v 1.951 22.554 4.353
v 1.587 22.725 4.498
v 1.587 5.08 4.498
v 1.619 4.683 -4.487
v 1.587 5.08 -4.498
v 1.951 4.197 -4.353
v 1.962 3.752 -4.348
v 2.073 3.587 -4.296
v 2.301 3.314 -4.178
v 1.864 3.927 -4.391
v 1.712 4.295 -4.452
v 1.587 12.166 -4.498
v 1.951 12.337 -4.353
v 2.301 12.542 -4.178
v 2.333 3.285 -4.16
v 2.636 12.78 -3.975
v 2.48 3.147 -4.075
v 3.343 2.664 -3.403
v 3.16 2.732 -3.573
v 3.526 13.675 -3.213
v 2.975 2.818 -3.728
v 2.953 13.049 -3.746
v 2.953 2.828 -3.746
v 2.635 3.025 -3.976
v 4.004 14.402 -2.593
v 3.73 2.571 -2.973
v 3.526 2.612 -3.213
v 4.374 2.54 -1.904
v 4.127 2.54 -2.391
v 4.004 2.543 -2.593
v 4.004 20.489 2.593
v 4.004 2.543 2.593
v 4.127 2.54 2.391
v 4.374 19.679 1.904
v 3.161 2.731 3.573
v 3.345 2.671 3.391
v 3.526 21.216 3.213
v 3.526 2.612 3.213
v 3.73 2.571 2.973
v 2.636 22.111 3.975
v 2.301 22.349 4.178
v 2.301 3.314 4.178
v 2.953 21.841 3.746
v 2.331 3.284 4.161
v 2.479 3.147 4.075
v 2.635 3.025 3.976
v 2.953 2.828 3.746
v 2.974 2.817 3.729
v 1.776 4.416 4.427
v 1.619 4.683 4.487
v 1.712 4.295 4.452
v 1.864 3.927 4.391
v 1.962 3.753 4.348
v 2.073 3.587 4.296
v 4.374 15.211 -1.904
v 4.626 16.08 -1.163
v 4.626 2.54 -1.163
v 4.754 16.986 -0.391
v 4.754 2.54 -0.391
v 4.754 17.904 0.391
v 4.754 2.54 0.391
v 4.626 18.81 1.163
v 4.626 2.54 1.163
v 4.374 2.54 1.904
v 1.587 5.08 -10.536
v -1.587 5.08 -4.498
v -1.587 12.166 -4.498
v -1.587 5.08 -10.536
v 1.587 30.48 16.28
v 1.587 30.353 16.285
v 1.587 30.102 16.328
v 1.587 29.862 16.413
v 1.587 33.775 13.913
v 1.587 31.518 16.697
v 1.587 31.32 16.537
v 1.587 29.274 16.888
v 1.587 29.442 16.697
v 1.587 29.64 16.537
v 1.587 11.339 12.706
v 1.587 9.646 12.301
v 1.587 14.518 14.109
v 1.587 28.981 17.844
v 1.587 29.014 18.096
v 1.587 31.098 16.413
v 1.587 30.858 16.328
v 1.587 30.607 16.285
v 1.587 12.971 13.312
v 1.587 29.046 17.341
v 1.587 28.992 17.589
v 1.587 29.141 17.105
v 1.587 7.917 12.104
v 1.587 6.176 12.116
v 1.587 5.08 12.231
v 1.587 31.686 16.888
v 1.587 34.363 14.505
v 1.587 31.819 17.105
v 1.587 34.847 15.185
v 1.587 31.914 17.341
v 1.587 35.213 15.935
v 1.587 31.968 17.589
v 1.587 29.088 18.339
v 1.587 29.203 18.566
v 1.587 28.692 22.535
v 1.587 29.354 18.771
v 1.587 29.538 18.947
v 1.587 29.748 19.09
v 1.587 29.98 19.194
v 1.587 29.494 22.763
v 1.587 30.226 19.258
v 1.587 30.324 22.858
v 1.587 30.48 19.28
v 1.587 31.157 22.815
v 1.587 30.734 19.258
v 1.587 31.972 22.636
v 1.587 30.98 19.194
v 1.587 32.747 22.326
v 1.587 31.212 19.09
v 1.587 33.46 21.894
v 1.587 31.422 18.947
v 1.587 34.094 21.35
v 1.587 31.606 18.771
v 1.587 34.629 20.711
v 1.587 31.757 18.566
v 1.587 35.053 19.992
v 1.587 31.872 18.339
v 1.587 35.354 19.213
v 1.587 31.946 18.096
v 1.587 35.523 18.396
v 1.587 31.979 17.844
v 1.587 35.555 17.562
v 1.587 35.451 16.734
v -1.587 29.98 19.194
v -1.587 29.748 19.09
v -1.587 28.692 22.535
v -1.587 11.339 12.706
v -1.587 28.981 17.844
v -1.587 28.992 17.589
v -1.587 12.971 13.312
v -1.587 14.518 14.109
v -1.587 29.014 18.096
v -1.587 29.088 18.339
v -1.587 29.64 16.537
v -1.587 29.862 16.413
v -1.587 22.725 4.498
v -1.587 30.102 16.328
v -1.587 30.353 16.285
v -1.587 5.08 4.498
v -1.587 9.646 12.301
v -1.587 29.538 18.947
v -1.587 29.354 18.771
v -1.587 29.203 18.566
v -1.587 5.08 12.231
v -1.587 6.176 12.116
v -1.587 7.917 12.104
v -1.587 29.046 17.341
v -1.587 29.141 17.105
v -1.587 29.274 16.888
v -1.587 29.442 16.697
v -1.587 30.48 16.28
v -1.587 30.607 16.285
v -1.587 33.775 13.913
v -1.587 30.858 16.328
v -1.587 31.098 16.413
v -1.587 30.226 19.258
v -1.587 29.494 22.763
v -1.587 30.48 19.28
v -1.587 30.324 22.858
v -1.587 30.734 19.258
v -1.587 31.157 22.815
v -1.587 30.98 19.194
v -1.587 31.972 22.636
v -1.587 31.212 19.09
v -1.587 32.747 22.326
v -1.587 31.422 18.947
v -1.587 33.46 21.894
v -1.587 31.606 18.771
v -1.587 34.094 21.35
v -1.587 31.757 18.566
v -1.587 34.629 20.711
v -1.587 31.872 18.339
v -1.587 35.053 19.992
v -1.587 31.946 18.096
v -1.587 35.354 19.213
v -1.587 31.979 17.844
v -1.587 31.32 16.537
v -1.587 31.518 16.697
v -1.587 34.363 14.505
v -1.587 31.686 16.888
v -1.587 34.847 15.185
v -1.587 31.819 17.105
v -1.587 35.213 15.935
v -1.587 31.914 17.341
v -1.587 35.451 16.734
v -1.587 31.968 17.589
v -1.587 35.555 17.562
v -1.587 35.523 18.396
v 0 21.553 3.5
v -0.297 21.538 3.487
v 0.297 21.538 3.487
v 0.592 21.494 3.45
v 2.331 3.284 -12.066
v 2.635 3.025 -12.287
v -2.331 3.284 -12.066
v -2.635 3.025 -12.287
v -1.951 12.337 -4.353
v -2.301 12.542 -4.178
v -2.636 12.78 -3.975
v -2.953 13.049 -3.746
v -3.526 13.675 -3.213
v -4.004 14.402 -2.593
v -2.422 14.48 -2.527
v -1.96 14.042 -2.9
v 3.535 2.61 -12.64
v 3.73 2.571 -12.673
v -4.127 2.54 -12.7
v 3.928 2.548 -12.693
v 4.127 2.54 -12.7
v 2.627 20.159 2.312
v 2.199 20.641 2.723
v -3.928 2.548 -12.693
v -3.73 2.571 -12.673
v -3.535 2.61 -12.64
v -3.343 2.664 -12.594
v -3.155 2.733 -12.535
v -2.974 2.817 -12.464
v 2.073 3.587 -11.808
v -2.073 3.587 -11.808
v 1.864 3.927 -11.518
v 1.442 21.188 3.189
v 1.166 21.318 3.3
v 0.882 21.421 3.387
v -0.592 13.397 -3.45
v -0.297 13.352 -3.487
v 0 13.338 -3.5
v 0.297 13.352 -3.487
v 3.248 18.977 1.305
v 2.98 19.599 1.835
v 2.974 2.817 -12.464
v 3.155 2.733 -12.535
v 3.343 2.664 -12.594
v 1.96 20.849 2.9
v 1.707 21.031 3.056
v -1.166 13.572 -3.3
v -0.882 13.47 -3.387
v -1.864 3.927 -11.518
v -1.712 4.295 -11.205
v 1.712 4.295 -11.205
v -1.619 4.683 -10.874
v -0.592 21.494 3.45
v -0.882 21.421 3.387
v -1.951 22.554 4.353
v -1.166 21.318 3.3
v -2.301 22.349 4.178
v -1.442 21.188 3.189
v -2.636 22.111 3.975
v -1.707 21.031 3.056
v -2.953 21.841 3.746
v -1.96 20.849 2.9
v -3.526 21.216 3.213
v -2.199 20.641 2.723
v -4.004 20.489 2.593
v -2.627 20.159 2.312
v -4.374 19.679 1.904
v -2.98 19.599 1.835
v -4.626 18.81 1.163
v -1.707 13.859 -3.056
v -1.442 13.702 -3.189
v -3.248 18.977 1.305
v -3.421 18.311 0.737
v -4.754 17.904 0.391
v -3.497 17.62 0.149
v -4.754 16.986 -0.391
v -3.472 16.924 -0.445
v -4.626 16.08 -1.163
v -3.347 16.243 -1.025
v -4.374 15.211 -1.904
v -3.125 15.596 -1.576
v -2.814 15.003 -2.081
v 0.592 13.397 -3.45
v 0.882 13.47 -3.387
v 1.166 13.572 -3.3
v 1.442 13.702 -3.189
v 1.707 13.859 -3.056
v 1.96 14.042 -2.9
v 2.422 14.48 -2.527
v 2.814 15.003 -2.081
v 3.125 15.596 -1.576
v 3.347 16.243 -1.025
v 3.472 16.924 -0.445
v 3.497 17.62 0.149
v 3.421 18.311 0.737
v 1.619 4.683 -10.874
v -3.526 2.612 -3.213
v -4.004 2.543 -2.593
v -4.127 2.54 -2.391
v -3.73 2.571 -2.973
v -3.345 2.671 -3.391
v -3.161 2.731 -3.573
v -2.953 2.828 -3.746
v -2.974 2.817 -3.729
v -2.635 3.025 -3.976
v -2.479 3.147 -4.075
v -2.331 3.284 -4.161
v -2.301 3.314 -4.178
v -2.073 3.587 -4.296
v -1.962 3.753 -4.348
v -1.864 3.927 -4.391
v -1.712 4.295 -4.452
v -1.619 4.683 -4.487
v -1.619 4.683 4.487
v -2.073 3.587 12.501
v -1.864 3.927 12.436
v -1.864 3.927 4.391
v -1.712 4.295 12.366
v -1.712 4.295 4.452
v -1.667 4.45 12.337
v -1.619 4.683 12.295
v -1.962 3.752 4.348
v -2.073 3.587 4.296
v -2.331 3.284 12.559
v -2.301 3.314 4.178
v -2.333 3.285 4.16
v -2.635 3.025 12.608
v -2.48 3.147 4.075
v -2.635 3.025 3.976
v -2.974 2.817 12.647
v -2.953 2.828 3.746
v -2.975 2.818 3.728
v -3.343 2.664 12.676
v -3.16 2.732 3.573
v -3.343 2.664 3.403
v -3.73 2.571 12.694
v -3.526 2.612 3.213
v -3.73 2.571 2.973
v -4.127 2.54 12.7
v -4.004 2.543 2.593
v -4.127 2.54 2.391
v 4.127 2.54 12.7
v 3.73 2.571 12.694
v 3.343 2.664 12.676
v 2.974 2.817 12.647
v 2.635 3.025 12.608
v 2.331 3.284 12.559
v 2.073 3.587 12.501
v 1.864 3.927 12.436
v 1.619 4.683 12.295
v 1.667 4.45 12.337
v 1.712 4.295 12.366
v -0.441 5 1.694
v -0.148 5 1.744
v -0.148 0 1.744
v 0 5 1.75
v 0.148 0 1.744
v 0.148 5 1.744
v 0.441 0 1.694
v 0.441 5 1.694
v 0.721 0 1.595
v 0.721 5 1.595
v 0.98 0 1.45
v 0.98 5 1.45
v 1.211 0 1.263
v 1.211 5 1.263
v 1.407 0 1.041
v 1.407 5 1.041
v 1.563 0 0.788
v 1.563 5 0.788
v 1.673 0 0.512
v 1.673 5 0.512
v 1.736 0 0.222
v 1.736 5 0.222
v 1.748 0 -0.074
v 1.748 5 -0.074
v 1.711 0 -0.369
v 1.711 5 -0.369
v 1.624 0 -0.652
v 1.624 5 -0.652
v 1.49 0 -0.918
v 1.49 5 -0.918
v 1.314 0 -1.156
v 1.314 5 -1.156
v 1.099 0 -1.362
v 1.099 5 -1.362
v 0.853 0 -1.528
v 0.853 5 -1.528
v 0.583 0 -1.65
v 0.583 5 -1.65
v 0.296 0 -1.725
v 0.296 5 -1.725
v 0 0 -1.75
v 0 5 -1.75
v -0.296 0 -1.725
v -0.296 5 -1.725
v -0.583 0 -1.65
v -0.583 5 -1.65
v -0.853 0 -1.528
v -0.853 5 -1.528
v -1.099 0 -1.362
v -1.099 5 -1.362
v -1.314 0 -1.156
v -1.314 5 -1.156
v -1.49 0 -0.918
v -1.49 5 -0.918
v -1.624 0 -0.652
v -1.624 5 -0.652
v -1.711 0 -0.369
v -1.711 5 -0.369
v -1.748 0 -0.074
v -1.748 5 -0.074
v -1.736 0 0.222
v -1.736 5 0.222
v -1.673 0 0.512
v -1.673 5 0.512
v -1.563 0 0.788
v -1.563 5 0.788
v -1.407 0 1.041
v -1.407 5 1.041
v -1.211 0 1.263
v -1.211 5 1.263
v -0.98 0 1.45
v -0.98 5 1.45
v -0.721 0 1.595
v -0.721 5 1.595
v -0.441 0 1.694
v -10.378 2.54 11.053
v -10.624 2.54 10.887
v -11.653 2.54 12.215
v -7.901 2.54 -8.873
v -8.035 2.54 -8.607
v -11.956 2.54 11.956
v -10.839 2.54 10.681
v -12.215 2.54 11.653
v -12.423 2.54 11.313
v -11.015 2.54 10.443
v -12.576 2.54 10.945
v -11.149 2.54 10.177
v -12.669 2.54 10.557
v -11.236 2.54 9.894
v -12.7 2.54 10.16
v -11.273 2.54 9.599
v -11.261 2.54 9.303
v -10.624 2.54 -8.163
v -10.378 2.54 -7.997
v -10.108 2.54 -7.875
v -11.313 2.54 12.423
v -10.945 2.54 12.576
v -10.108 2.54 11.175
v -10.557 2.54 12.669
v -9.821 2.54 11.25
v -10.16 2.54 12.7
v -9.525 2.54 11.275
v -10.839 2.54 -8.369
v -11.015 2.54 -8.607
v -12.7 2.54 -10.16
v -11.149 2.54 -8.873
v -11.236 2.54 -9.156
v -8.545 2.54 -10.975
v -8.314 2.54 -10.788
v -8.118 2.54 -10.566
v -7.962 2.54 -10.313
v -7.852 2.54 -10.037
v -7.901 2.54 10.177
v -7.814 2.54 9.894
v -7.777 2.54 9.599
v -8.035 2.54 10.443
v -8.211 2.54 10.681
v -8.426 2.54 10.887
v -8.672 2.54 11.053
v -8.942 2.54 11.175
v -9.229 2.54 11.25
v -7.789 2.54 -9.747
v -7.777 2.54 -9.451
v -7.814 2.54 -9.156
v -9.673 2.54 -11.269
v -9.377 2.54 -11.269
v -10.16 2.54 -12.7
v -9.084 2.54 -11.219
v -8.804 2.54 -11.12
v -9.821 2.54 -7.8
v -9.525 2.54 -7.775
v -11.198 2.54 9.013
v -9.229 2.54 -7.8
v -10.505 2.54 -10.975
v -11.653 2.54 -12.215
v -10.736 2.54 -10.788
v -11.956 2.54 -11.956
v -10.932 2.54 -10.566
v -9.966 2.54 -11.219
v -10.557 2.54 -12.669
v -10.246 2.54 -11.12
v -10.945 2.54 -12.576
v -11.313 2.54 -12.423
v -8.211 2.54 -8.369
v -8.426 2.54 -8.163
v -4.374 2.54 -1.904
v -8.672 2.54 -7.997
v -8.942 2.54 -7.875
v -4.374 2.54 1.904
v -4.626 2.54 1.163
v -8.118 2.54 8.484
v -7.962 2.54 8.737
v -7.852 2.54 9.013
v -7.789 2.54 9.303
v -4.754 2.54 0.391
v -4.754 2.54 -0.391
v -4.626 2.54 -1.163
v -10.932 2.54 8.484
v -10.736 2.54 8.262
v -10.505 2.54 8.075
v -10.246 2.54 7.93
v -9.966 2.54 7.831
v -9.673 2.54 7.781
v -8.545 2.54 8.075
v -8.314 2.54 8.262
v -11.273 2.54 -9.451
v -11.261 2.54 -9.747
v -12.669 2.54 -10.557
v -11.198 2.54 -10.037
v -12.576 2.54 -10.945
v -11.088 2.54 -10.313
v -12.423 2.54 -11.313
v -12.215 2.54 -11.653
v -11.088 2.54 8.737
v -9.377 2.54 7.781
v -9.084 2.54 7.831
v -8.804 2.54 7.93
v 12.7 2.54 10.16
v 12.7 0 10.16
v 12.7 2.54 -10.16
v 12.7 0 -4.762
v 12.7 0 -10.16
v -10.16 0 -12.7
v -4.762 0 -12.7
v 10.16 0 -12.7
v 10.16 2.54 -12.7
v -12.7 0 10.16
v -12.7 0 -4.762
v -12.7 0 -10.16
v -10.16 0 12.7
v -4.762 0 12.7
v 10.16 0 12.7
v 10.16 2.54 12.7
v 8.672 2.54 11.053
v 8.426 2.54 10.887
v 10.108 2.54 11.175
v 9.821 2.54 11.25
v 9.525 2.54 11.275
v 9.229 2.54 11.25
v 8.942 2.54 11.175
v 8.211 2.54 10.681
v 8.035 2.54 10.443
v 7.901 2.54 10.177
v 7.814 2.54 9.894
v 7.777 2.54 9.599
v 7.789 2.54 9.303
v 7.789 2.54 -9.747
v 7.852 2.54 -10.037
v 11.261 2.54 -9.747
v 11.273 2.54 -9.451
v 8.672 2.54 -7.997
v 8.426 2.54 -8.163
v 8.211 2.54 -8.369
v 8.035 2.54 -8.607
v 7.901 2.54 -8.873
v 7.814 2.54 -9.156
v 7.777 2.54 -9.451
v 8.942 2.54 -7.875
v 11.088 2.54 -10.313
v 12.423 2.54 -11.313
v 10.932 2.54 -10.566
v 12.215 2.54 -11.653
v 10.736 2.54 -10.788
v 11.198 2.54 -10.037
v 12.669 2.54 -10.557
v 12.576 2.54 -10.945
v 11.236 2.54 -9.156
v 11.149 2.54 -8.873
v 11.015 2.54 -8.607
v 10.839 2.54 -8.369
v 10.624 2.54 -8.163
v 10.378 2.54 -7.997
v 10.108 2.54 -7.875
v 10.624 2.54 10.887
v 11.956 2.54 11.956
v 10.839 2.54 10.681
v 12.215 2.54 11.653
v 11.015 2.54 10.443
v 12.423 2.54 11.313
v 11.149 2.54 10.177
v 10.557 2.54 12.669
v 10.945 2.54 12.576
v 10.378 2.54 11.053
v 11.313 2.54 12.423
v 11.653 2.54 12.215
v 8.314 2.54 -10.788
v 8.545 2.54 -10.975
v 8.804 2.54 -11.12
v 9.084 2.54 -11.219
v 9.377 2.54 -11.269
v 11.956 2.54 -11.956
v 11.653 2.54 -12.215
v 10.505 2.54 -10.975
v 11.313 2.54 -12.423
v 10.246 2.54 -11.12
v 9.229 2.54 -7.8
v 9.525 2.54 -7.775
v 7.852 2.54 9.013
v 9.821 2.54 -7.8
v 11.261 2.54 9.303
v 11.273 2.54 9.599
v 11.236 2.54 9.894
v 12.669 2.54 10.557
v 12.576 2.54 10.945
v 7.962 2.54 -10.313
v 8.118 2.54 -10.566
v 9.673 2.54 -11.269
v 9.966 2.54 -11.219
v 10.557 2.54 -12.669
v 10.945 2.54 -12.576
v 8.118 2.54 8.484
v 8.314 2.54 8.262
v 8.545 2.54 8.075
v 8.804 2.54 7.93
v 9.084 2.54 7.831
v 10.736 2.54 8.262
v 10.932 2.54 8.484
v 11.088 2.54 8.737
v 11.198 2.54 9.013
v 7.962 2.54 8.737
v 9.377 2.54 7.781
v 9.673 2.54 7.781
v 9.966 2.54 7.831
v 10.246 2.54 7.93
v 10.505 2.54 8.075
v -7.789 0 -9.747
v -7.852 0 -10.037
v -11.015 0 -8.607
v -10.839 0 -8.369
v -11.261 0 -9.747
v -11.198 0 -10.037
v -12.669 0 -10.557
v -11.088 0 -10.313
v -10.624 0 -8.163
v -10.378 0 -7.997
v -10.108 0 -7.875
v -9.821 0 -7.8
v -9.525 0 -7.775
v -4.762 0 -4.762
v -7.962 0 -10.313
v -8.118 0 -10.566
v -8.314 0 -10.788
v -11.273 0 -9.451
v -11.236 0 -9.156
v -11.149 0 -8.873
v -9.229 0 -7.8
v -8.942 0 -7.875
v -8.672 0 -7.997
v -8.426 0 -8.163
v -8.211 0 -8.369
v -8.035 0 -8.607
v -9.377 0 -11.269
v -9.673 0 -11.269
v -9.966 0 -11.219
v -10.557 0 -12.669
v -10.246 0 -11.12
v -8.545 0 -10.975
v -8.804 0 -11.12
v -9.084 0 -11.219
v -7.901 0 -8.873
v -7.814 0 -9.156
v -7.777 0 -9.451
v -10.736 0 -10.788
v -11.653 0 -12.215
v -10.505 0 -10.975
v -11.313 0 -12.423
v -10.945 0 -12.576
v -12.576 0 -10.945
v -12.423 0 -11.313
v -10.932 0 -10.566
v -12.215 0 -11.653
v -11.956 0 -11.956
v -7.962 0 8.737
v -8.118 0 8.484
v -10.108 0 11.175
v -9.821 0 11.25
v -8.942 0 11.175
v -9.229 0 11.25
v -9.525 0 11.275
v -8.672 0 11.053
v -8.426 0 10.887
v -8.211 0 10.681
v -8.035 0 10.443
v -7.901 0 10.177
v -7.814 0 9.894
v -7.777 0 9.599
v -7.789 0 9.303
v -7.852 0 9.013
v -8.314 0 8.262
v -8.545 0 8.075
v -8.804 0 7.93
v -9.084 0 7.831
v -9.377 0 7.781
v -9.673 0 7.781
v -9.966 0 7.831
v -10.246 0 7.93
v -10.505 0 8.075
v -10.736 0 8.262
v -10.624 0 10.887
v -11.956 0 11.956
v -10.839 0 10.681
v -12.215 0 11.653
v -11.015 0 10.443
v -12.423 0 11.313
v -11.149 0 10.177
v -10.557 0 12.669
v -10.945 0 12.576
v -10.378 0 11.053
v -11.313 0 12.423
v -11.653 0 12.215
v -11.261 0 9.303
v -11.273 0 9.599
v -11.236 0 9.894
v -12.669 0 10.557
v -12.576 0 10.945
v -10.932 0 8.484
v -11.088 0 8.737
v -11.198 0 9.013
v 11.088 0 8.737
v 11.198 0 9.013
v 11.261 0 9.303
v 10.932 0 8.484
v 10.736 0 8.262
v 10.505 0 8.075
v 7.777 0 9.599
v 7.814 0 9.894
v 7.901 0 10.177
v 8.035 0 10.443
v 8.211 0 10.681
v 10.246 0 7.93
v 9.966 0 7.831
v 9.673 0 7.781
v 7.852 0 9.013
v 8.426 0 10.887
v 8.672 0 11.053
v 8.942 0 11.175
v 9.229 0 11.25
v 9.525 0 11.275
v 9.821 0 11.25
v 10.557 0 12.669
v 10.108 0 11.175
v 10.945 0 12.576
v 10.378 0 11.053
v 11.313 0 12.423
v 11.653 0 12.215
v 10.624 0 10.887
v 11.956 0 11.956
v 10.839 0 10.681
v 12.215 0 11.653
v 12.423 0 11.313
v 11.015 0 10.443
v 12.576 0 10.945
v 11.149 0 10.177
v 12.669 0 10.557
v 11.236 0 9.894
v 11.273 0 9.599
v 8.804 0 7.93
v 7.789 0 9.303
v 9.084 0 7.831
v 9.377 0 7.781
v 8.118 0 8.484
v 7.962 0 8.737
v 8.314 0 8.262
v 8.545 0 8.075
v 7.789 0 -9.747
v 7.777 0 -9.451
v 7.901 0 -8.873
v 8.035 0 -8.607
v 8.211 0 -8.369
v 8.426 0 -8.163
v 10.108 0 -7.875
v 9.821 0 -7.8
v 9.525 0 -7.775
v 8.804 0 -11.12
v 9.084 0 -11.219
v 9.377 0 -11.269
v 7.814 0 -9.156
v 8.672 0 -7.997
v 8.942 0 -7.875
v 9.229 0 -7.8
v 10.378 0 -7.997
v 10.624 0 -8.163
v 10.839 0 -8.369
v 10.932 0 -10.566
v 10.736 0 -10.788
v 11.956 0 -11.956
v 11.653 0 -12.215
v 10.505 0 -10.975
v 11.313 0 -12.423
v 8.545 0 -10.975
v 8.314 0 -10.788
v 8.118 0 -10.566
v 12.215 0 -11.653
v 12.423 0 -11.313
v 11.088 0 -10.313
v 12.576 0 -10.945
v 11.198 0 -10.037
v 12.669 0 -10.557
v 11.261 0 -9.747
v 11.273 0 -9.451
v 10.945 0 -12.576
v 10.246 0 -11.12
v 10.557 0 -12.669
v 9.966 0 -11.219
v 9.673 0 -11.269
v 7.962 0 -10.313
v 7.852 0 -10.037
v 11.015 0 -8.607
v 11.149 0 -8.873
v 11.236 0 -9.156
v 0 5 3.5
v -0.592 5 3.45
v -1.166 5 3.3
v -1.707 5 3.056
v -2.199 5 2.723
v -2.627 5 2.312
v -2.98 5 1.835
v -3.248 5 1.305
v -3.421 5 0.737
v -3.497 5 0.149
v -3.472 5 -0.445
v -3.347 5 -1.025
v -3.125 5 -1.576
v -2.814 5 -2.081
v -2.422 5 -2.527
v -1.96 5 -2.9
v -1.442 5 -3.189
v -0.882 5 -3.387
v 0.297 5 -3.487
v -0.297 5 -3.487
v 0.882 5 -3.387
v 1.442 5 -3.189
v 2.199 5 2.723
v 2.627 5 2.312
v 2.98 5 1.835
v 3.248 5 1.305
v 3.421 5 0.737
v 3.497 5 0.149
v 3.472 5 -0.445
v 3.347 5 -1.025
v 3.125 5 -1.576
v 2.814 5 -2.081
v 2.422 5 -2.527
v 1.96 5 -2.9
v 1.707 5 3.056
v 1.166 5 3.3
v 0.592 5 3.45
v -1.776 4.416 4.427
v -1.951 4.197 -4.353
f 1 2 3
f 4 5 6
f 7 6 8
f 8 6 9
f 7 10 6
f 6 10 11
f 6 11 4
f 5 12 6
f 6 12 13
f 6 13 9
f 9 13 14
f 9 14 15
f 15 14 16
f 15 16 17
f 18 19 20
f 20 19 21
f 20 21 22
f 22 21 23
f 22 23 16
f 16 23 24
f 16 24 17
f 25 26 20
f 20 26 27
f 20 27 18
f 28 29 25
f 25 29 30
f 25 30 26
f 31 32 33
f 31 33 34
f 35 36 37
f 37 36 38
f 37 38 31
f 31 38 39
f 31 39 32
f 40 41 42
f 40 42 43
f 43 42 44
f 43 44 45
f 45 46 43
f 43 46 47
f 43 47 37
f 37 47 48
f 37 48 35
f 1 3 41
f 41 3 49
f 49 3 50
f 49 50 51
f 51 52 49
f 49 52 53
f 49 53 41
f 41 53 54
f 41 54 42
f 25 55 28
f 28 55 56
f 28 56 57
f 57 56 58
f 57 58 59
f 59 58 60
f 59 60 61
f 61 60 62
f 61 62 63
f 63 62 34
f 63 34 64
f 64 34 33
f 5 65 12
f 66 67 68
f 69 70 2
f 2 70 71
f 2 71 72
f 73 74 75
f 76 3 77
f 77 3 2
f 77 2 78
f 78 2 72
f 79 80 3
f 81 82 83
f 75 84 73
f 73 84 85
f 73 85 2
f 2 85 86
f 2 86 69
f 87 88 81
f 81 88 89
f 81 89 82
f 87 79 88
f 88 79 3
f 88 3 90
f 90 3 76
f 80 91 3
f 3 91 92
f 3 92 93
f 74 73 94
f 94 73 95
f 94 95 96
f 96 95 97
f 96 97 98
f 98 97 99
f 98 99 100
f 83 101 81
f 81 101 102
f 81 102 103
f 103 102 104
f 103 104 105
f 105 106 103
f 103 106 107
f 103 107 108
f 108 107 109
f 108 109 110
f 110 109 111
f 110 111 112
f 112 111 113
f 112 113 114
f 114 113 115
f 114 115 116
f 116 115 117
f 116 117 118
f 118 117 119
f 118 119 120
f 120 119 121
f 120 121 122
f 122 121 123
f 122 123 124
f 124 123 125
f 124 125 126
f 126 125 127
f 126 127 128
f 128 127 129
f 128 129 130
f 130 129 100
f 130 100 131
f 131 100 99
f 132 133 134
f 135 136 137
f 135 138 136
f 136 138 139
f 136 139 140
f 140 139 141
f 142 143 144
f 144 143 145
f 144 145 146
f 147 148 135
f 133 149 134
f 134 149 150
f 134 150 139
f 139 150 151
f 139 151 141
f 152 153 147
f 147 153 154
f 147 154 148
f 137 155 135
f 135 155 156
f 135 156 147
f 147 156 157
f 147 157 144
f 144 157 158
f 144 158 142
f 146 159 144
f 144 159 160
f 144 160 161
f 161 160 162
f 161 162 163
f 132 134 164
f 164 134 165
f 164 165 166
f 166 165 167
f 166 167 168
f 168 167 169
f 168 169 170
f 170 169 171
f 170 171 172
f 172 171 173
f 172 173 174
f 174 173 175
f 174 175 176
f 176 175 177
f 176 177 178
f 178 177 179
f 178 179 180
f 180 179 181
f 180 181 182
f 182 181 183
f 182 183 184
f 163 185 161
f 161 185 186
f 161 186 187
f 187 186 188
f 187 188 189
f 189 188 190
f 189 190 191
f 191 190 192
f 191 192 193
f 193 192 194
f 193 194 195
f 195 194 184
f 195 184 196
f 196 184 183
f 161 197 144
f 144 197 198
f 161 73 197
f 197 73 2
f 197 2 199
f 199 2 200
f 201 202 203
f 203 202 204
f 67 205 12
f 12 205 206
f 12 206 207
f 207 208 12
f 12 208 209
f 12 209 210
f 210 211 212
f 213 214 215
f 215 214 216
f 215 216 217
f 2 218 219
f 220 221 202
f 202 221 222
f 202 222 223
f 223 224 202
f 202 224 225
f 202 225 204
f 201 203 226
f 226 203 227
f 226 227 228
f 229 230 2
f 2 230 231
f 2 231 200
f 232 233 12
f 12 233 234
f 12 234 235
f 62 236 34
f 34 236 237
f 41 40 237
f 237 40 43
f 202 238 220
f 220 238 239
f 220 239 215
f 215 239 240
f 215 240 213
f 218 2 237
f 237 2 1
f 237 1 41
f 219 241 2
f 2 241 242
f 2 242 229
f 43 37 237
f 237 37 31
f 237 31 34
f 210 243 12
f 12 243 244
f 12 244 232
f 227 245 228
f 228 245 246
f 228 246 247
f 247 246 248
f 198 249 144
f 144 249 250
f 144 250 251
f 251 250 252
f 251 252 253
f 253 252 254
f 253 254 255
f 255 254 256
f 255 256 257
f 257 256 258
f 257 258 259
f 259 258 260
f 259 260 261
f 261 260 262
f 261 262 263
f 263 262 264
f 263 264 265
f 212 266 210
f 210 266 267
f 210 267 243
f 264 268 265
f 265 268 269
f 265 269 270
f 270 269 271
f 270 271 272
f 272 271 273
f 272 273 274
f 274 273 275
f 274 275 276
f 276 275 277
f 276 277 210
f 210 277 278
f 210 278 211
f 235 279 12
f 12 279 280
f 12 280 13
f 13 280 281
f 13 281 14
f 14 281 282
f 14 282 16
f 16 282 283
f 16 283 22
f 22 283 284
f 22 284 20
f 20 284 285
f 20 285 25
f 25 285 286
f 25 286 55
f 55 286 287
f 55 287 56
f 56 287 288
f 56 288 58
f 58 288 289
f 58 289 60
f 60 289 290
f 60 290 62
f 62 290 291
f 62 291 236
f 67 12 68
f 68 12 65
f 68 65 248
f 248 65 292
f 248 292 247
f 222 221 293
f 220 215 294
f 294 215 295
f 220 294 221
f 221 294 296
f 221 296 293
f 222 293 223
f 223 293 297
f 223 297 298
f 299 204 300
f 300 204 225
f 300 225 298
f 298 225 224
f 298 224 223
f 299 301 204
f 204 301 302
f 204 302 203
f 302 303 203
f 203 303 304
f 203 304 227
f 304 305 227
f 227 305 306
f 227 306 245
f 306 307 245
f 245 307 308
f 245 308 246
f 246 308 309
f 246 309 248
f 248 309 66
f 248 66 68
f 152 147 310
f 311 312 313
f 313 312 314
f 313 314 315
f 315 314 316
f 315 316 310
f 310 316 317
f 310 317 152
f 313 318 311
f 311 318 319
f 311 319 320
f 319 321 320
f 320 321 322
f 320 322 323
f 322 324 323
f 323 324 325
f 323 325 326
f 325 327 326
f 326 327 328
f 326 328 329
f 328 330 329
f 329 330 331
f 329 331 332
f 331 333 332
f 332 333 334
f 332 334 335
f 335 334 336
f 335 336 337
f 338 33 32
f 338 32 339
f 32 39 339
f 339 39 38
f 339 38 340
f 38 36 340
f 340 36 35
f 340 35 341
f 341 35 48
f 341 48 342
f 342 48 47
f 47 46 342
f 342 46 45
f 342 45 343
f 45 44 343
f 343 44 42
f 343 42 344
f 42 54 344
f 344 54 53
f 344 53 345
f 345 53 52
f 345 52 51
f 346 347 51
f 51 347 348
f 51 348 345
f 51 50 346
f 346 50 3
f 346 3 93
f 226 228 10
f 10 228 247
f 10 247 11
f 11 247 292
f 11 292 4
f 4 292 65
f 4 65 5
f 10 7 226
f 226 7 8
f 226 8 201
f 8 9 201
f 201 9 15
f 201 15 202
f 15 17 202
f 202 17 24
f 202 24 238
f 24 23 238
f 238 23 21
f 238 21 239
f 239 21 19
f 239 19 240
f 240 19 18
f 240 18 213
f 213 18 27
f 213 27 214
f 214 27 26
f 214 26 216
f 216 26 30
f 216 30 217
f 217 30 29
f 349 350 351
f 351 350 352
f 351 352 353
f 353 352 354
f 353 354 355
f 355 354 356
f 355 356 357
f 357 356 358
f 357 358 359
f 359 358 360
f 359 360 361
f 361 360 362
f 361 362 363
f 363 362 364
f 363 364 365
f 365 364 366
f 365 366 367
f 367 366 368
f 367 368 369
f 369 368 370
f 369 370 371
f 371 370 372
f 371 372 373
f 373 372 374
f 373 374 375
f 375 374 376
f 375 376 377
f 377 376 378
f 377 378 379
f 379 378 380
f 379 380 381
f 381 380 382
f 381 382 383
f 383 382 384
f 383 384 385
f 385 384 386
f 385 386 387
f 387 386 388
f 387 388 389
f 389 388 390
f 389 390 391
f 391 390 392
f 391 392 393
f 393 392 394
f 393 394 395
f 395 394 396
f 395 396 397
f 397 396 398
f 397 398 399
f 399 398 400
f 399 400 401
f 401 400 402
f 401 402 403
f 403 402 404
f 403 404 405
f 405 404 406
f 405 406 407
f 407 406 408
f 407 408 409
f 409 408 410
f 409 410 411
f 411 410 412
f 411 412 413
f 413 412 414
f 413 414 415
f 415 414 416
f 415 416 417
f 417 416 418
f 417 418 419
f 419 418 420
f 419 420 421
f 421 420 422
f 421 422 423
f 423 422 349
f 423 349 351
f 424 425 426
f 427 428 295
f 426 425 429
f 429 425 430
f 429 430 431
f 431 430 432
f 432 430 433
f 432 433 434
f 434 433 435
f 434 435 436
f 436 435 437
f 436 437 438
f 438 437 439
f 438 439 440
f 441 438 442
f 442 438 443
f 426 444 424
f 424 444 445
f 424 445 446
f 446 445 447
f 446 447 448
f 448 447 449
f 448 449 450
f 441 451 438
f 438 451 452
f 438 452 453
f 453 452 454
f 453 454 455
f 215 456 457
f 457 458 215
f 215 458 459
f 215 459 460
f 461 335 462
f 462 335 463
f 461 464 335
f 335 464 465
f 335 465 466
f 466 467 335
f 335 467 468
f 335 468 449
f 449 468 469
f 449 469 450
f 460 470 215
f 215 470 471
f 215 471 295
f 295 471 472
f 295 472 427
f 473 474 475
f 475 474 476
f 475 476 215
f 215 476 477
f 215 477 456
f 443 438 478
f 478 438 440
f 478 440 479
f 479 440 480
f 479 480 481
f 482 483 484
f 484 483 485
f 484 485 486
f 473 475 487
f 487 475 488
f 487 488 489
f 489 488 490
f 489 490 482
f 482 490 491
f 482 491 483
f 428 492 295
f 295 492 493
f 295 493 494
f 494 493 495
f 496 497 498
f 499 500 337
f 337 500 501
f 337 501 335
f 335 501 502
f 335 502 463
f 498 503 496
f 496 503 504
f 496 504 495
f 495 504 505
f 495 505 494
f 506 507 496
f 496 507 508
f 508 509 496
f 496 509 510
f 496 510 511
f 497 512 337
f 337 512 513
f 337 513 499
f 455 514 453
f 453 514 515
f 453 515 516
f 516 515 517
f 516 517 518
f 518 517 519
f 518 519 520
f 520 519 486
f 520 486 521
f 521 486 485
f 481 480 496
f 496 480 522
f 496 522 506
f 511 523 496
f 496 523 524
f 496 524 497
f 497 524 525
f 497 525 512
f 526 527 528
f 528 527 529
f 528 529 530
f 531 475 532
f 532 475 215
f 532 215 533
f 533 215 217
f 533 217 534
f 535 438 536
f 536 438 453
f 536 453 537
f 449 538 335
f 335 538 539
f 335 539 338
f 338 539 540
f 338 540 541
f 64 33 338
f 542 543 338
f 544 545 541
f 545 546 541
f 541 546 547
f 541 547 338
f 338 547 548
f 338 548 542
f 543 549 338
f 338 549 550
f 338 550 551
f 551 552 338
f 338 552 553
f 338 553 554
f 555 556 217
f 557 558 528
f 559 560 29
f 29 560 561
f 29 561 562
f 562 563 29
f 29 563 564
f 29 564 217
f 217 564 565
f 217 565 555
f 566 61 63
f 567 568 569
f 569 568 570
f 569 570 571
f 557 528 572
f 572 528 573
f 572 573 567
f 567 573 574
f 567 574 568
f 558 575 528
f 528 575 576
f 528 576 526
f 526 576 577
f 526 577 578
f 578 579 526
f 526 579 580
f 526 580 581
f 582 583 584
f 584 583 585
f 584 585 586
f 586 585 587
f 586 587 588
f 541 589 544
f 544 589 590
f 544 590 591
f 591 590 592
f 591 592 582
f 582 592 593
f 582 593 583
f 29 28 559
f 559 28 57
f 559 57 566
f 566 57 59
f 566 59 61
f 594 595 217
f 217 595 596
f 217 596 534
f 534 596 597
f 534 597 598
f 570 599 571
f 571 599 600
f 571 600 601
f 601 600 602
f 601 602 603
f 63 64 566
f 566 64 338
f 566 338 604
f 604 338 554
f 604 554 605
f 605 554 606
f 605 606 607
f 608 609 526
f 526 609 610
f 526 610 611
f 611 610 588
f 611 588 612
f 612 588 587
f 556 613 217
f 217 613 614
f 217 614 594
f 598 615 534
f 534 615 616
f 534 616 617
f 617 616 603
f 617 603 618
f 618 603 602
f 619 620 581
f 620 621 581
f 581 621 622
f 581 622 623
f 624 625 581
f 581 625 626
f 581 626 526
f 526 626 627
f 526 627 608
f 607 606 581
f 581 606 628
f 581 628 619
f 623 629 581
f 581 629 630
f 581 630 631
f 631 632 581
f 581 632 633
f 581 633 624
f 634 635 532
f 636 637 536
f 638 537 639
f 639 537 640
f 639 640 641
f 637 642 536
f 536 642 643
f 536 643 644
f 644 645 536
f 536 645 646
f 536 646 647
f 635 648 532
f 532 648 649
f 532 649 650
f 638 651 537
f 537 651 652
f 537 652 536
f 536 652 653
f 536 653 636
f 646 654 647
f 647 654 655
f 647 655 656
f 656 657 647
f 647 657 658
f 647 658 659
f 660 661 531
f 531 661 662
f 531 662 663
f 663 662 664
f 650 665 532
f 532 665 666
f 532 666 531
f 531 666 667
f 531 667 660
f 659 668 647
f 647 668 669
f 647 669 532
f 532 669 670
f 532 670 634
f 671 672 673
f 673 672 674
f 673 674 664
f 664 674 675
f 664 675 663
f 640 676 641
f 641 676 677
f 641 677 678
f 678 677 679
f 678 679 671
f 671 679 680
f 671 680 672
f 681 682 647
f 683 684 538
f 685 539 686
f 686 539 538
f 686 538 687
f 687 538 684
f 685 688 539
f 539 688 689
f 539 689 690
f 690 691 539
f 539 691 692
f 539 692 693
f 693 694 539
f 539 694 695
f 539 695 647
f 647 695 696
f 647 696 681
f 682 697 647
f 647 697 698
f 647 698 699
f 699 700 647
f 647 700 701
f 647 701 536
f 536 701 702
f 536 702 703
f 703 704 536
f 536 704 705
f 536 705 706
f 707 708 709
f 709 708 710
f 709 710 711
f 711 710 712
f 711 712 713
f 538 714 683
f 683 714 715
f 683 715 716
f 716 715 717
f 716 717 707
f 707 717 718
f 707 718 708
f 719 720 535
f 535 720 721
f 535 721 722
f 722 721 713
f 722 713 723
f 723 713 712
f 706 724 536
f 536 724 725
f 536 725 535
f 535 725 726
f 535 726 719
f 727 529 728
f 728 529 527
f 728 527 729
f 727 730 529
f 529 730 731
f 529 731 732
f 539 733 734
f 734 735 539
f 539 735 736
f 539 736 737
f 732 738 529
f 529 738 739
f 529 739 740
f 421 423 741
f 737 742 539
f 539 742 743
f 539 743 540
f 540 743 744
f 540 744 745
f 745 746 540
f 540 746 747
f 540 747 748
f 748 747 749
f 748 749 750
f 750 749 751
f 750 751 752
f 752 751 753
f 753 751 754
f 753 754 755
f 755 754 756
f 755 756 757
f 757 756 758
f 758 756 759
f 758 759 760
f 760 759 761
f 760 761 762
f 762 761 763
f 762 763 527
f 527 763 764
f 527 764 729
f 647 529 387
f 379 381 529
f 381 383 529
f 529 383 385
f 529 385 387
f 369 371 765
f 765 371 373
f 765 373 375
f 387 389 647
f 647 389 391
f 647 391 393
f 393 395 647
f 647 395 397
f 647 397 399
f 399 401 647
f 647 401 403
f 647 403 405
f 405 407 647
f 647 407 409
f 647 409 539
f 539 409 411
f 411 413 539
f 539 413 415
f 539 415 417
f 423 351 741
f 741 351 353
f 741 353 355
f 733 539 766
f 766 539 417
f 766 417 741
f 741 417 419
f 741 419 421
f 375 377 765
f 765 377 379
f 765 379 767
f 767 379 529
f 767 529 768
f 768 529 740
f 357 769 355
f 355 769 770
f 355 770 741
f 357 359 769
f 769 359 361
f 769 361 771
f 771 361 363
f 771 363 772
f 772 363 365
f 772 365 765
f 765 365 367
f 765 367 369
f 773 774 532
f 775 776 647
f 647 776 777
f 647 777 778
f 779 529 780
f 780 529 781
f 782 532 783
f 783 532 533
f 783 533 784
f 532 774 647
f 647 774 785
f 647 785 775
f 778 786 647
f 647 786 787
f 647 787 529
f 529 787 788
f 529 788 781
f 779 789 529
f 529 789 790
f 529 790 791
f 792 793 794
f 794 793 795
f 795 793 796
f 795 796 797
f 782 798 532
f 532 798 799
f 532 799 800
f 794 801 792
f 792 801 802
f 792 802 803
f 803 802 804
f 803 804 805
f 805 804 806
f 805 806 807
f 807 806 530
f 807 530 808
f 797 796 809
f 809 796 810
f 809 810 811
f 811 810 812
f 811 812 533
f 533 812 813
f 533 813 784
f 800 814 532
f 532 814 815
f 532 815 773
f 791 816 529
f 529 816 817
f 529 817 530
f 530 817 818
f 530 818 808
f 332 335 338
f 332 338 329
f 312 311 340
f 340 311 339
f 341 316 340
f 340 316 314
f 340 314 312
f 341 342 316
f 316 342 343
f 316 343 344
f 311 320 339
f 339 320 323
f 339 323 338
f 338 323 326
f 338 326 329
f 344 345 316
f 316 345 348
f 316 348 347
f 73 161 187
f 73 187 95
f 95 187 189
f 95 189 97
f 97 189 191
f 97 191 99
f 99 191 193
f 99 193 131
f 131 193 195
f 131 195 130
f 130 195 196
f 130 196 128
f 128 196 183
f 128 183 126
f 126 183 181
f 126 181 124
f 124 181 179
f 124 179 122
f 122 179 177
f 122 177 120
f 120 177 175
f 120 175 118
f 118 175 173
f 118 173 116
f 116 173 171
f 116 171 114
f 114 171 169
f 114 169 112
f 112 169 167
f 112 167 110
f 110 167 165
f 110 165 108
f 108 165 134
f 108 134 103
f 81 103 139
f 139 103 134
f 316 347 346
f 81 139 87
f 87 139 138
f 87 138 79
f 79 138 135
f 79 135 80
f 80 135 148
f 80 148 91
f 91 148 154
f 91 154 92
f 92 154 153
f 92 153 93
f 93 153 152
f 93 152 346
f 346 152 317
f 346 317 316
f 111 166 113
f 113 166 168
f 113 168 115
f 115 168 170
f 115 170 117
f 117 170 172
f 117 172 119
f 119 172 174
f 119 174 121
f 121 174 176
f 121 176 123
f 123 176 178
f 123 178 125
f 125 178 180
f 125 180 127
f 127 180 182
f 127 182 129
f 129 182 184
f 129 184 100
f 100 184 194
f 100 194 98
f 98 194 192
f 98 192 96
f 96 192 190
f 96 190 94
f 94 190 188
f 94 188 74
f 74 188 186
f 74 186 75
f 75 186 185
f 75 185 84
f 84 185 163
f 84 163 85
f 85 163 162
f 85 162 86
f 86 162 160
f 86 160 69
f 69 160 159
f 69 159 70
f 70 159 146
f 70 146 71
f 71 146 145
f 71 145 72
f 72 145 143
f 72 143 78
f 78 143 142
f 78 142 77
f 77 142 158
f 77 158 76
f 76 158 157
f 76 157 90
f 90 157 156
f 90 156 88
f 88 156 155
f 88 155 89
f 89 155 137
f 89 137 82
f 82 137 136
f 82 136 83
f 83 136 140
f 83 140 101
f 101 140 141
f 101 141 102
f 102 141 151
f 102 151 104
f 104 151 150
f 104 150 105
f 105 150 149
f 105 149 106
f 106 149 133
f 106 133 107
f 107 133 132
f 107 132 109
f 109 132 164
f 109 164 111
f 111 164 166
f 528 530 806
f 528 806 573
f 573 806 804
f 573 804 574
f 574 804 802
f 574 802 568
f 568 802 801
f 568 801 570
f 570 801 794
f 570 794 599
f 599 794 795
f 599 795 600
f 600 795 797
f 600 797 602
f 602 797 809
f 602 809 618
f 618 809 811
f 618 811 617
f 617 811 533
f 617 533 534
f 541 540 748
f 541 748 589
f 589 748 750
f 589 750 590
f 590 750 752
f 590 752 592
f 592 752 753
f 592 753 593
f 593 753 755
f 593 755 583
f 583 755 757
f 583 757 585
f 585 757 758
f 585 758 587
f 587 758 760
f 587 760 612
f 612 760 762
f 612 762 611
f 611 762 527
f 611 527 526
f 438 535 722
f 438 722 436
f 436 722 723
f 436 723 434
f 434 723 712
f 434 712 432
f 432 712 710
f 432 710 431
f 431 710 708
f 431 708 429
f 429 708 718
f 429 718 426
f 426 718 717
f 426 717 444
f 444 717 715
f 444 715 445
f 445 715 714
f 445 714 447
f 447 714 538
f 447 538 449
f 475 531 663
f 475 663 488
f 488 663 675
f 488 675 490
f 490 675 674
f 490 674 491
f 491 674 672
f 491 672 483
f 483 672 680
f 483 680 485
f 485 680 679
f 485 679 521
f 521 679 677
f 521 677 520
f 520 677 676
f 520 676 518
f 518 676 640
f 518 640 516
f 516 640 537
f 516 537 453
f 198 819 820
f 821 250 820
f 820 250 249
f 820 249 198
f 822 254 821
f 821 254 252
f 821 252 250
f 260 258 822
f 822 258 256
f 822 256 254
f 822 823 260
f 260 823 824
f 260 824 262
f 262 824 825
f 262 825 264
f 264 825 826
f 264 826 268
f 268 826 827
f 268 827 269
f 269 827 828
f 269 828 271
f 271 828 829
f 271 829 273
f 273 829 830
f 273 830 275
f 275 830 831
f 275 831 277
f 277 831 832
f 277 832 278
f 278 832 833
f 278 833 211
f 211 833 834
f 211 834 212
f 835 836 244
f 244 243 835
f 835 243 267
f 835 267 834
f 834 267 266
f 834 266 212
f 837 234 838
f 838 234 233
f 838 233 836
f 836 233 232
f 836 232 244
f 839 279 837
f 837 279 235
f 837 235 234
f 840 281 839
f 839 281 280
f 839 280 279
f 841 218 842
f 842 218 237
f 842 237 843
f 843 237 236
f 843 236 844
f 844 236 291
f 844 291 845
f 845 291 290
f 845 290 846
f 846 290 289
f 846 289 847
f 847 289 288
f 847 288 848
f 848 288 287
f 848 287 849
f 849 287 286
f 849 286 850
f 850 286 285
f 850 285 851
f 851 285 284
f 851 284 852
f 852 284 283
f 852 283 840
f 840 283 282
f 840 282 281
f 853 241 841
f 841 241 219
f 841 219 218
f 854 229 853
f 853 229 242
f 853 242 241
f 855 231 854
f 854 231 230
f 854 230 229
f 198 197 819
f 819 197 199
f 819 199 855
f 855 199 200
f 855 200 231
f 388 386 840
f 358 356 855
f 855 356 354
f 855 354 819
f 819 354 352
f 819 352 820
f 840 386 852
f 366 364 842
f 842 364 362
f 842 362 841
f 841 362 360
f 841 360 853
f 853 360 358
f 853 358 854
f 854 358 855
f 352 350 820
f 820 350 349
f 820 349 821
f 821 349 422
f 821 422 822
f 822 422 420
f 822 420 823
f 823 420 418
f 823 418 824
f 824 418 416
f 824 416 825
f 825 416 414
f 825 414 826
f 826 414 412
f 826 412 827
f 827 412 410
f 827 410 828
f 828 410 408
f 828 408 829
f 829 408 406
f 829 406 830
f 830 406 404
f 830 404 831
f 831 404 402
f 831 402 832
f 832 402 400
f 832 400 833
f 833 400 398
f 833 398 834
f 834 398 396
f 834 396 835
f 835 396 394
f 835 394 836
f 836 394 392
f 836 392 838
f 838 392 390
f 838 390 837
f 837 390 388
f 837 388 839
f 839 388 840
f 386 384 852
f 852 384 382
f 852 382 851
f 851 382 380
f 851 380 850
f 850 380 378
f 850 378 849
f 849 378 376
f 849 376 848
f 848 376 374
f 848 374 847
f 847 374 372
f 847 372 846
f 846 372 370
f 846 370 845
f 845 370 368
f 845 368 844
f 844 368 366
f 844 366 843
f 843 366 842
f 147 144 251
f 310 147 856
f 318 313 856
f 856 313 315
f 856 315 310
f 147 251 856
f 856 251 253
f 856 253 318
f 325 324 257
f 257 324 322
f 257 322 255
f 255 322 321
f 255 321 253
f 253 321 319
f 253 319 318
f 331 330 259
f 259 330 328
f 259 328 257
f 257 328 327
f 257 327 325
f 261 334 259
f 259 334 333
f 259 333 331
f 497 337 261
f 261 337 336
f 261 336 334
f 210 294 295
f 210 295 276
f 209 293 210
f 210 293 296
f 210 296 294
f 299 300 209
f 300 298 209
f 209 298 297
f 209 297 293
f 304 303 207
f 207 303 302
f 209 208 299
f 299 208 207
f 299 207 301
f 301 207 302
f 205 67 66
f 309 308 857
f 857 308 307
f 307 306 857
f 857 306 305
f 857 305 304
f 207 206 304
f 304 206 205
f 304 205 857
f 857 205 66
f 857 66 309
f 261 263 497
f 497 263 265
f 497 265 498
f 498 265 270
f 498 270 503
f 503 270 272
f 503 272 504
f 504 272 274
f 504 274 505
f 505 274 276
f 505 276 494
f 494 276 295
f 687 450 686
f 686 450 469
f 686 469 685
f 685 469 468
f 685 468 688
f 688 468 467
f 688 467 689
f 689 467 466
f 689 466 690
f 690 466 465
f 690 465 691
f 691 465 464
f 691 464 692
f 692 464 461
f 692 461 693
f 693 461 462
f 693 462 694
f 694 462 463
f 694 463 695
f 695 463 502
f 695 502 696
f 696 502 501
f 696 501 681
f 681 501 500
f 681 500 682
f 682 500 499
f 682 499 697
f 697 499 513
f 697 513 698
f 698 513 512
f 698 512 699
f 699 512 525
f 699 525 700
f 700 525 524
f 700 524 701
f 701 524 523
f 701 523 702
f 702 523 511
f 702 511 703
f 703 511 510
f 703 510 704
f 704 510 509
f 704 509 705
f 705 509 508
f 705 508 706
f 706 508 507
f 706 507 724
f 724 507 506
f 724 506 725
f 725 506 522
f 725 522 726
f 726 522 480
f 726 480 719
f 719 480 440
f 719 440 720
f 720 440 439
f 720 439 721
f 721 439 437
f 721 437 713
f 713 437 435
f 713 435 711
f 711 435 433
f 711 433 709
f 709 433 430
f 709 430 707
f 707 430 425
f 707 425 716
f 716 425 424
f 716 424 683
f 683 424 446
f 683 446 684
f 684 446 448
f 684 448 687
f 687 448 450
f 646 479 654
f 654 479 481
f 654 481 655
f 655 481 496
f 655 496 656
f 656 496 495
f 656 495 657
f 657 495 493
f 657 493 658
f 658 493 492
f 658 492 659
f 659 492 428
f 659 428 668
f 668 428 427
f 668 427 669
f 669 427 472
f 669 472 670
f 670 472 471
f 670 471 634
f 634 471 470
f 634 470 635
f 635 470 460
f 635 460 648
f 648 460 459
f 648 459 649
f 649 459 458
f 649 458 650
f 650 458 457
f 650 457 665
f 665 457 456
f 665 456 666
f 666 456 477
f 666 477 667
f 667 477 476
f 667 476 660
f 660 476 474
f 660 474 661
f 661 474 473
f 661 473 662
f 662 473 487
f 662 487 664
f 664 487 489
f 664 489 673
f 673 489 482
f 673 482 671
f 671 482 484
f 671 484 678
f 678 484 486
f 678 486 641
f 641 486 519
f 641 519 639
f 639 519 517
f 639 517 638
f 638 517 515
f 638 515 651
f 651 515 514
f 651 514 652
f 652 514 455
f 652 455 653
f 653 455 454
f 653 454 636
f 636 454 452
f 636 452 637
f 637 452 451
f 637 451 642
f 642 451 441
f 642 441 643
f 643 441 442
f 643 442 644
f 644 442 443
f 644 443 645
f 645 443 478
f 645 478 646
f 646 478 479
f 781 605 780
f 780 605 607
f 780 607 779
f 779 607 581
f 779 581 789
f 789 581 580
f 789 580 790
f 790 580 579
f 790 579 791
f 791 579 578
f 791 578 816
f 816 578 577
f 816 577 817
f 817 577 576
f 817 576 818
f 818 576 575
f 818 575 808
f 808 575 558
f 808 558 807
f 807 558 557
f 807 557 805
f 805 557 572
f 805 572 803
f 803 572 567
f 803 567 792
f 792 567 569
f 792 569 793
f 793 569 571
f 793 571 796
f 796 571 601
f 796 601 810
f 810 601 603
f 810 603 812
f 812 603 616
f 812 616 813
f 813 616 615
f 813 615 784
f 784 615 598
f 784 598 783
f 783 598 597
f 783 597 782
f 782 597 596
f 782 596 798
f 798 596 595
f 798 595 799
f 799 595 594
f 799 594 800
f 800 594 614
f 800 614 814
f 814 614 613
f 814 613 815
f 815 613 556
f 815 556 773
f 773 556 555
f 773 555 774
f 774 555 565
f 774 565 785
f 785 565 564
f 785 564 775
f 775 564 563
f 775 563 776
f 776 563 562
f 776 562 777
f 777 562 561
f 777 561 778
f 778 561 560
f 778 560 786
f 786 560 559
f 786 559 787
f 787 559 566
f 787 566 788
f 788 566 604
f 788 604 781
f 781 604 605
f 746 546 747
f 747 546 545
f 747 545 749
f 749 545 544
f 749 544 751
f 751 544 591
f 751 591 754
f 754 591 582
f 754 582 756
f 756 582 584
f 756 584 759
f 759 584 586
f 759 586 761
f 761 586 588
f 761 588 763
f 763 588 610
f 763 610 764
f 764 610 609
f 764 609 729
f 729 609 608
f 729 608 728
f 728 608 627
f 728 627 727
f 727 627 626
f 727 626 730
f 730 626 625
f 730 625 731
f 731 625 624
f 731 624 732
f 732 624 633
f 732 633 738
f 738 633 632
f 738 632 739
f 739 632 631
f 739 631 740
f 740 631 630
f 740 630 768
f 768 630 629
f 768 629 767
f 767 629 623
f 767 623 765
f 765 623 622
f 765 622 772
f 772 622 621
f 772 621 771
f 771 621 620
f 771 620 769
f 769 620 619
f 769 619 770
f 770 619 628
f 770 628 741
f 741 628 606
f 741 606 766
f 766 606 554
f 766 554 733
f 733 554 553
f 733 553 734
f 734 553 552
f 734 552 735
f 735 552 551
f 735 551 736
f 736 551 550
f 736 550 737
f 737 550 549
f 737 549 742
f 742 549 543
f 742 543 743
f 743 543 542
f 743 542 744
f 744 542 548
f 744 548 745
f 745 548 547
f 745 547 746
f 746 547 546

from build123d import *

# Parameters (mm, degrees)
BOSS_EXTRUDE1_DEPTH     = 2.54
SKETCH3_R               = 1.5000000000000009
BOSS_EXTRUDE2_DEPTH     = 1.5875
FILLET1_START           = -12.7000001
FILLET1_DEPTH           = 25.4000001
FILLET1_START_2         = -5
FILLET1_2_DEPTH         = 10
FILLET2_R               = 2.54
SKETCH4_R               = 3.5
BOSS_EXTRUDE3_DEPTH     = 7
SKETCH5_R               = 1.75
CUT_EXTRUDE1_DEPTH      = 45.14049388033623
CUT_EXTRUDE2_DEPTH      = 39.723935750385714
CUT_EXTRUDE2_DEPTH_BACK = 2
SKETCH6_R               = 3.5
SKETCH10_R              = 4.77
SKETCH10_R_2            = 3.5
BOSS_EXTRUDE4_DEPTH     = 21.844000000000005
SKETCH9_R               = 1.7499999999999998
CUT_EXTRUDE4_DEPTH      = 43.12113483751359
CUT_EXTRUDE5_DEPTH      = 45.62315381335121
CUT_EXTRUDE5_DEPTH_BACK = 45.62315381335121


with BuildPart() as part:
    # Sketch1 → Boss-Extrude1 (new body)
    with BuildSketch(Plane(origin=(0, 0, 0), x_dir=(1, 0, 0), z_dir=(0, 1, 0))):
        Polygon((-12.7, 12.699999999999998), (12.7, 12.699999999999998), (12.700000000000003, -12.700000000000001), (-12.699999999999996, -12.700000000000001), align=None)
    extrude(amount=BOSS_EXTRUDE1_DEPTH)

    # Sketch3 → Boss-Extrude2 (add, symmetric)
    with BuildSketch(Plane(origin=(0, 0, 0), x_dir=(0, 0, -1), z_dir=(1, 0, 0))):
        with BuildLine():
            Line((-22.53488, 28.691839999999996), (-14.109077453558108, 14.51812311143032))
            ThreePointArc((-14.109077453558108, 14.51812311143032), (-12.3014463794853, 9.646212675108597), (-12.336895325054973, 4.449888515498061))
            Line((-12.336895325054973, 4.449888515498061), (-12.700000000000001, 2.54))
            Line((-12.700000000000001, 2.54), (12.699999999999998, 2.54))
            Line((12.699999999999998, 2.54), (-13.91324894993197, 33.77463750916512))
            ThreePointArc((-13.91324894993197, 33.77463750916512), (-20.3599032710008, 34.856128324475804), (-22.53488, 28.691839999999996))
        make_face()
        with Locations((-17.779999999999998, 30.479999999999997)):
            Circle(SKETCH3_R, mode=Mode.SUBTRACT)
    extrude(amount=BOSS_EXTRUDE2_DEPTH, both=True)

    # Fillet1: read off the stored shape, not the designer's step
    # Fillet1 outline → Fillet1 (add)
    with BuildSketch(Plane.XY.offset(FILLET1_START)):
        with BuildLine():
            ThreePointArc((-1.5875, 5.08), (-2.331448776, 3.283948776), (-4.1275, 2.54))
            Line((-4.1275, 2.54), (-1.5875, 2.54))
            Line((-1.5875, 2.54), (-1.5875, 5.08))
        make_face()
        with BuildLine():
            Line((1.5875, 2.54), (4.1275, 2.54))
            ThreePointArc((4.1275, 2.54), (2.331448776, 3.283948776), (1.5875, 5.08))
            Line((1.5875, 5.08), (1.5875, 2.54))
        make_face()
    extrude(amount=FILLET1_DEPTH)

    # Fillet1 2 outline → Fillet1 2 (cut)
    with BuildSketch(Plane.YZ.offset(FILLET1_START_2)):
        Polygon((5.08, -10.535811211), (2.54, -12.7), (5.08, -12.7000001), align=None)
        with BuildLine():
            Line((5.08, 12.7), (2.54, 12.7))
            Line((2.54, 12.7), (4.449888515, 12.336895325))
            ThreePointArc((4.449888515, 12.336895325), (4.764360857, 12.280707955), (5.08, 12.231496116))
            Line((5.08, 12.231496116), (5.08, 12.7))
        make_face()
    extrude(amount=FILLET1_2_DEPTH, mode=Mode.SUBTRACT)

    # Fillet2
    fillet2_edges = [part.edges().sort_by_distance(p)[0] for p in [
        (12.7, 1.27, -12.699999999999998),
        (12.700000000000003, 1.27, 12.700000000000001),
        (-12.699999999999996, 1.27, 12.700000000000001),
        (-12.7, 1.27, -12.699999999999998),
    ]]
    fillet(fillet2_edges, radius=FILLET2_R)

    # Sketch4 → Boss-Extrude3 (add)
    with BuildSketch(Plane.XZ):
        Circle(SKETCH4_R)
    extrude(amount=-BOSS_EXTRUDE3_DEPTH)

    # Sketch5 → Cut-Extrude1 (cut, through all)
    with BuildSketch(Plane.XZ):
        with Locations(Location((0, 0, 0), (0, 0, 270))):
            Circle(SKETCH5_R)
    extrude(amount=-CUT_EXTRUDE1_DEPTH, mode=Mode.SUBTRACT)

    # Sketch6 → Cut-Extrude2 (cut, two sides: drawn at the far end of the back side and taken through both)
    with BuildSketch(Plane(origin=(0, 7, 0), x_dir=(1, 0, 0), z_dir=(0, 1, 0)).offset(-CUT_EXTRUDE2_DEPTH_BACK)):
        Circle(SKETCH6_R)
    extrude(amount=CUT_EXTRUDE2_DEPTH + CUT_EXTRUDE2_DEPTH_BACK, mode=Mode.SUBTRACT)

    # Sketch10 → Boss-Extrude4 (add)
    with BuildSketch(Plane(origin=(0, 2.54, 0), x_dir=(1, 0, 0), z_dir=(0, 1, 0))):
        with Locations(Location((0, 0, 0), (0, 0, 70.560627051))):
            Circle(SKETCH10_R)
        with Locations(Location((0, 0, 0), (0, 0, 270))):
            Circle(SKETCH10_R_2, mode=Mode.SUBTRACT)
    extrude(amount=BOSS_EXTRUDE4_DEPTH)

    # Sketch9 → Cut-Extrude4 (cut, through all)
    with BuildSketch(Plane(origin=(0, 2.54, 0), x_dir=(1, 0, 0), z_dir=(0, 1, 0))):
        with Locations(Location((-9.524999999999999, -9.525000000000002, 0), (0, 0, 270))):
            Circle(SKETCH9_R)
        with Locations(Location((-9.524999999999999, 9.524999999999999, 0), (0, 0, 270))):
            Circle(SKETCH9_R)
        with Locations(Location((9.525000000000002, 9.525000000000002, 0), (0, 0, 270))):
            Circle(SKETCH9_R)
        with Locations(Location((9.525000000000002, -9.524999999999999, 0), (0, 0, 270))):
            Circle(SKETCH9_R)
    extrude(amount=-CUT_EXTRUDE4_DEPTH, mode=Mode.SUBTRACT)

    # Sketch8 → Cut-Extrude5 (cut, two sides: drawn at the far end of the back side and taken through both)
    with BuildSketch(Plane(origin=(1.5875, 0, 0), x_dir=(0, 0, -1), z_dir=(1, 0, 0)).offset(-CUT_EXTRUDE5_DEPTH_BACK)):
        Polygon((-9.955433984779507, 29.129548290728966), (6.7091639016479245, 9.571144309395804), (6.709163901647932, 29.129548290728973), align=None)
    extrude(amount=CUT_EXTRUDE5_DEPTH + CUT_EXTRUDE5_DEPTH_BACK, mode=Mode.SUBTRACT)


solid = part.part
